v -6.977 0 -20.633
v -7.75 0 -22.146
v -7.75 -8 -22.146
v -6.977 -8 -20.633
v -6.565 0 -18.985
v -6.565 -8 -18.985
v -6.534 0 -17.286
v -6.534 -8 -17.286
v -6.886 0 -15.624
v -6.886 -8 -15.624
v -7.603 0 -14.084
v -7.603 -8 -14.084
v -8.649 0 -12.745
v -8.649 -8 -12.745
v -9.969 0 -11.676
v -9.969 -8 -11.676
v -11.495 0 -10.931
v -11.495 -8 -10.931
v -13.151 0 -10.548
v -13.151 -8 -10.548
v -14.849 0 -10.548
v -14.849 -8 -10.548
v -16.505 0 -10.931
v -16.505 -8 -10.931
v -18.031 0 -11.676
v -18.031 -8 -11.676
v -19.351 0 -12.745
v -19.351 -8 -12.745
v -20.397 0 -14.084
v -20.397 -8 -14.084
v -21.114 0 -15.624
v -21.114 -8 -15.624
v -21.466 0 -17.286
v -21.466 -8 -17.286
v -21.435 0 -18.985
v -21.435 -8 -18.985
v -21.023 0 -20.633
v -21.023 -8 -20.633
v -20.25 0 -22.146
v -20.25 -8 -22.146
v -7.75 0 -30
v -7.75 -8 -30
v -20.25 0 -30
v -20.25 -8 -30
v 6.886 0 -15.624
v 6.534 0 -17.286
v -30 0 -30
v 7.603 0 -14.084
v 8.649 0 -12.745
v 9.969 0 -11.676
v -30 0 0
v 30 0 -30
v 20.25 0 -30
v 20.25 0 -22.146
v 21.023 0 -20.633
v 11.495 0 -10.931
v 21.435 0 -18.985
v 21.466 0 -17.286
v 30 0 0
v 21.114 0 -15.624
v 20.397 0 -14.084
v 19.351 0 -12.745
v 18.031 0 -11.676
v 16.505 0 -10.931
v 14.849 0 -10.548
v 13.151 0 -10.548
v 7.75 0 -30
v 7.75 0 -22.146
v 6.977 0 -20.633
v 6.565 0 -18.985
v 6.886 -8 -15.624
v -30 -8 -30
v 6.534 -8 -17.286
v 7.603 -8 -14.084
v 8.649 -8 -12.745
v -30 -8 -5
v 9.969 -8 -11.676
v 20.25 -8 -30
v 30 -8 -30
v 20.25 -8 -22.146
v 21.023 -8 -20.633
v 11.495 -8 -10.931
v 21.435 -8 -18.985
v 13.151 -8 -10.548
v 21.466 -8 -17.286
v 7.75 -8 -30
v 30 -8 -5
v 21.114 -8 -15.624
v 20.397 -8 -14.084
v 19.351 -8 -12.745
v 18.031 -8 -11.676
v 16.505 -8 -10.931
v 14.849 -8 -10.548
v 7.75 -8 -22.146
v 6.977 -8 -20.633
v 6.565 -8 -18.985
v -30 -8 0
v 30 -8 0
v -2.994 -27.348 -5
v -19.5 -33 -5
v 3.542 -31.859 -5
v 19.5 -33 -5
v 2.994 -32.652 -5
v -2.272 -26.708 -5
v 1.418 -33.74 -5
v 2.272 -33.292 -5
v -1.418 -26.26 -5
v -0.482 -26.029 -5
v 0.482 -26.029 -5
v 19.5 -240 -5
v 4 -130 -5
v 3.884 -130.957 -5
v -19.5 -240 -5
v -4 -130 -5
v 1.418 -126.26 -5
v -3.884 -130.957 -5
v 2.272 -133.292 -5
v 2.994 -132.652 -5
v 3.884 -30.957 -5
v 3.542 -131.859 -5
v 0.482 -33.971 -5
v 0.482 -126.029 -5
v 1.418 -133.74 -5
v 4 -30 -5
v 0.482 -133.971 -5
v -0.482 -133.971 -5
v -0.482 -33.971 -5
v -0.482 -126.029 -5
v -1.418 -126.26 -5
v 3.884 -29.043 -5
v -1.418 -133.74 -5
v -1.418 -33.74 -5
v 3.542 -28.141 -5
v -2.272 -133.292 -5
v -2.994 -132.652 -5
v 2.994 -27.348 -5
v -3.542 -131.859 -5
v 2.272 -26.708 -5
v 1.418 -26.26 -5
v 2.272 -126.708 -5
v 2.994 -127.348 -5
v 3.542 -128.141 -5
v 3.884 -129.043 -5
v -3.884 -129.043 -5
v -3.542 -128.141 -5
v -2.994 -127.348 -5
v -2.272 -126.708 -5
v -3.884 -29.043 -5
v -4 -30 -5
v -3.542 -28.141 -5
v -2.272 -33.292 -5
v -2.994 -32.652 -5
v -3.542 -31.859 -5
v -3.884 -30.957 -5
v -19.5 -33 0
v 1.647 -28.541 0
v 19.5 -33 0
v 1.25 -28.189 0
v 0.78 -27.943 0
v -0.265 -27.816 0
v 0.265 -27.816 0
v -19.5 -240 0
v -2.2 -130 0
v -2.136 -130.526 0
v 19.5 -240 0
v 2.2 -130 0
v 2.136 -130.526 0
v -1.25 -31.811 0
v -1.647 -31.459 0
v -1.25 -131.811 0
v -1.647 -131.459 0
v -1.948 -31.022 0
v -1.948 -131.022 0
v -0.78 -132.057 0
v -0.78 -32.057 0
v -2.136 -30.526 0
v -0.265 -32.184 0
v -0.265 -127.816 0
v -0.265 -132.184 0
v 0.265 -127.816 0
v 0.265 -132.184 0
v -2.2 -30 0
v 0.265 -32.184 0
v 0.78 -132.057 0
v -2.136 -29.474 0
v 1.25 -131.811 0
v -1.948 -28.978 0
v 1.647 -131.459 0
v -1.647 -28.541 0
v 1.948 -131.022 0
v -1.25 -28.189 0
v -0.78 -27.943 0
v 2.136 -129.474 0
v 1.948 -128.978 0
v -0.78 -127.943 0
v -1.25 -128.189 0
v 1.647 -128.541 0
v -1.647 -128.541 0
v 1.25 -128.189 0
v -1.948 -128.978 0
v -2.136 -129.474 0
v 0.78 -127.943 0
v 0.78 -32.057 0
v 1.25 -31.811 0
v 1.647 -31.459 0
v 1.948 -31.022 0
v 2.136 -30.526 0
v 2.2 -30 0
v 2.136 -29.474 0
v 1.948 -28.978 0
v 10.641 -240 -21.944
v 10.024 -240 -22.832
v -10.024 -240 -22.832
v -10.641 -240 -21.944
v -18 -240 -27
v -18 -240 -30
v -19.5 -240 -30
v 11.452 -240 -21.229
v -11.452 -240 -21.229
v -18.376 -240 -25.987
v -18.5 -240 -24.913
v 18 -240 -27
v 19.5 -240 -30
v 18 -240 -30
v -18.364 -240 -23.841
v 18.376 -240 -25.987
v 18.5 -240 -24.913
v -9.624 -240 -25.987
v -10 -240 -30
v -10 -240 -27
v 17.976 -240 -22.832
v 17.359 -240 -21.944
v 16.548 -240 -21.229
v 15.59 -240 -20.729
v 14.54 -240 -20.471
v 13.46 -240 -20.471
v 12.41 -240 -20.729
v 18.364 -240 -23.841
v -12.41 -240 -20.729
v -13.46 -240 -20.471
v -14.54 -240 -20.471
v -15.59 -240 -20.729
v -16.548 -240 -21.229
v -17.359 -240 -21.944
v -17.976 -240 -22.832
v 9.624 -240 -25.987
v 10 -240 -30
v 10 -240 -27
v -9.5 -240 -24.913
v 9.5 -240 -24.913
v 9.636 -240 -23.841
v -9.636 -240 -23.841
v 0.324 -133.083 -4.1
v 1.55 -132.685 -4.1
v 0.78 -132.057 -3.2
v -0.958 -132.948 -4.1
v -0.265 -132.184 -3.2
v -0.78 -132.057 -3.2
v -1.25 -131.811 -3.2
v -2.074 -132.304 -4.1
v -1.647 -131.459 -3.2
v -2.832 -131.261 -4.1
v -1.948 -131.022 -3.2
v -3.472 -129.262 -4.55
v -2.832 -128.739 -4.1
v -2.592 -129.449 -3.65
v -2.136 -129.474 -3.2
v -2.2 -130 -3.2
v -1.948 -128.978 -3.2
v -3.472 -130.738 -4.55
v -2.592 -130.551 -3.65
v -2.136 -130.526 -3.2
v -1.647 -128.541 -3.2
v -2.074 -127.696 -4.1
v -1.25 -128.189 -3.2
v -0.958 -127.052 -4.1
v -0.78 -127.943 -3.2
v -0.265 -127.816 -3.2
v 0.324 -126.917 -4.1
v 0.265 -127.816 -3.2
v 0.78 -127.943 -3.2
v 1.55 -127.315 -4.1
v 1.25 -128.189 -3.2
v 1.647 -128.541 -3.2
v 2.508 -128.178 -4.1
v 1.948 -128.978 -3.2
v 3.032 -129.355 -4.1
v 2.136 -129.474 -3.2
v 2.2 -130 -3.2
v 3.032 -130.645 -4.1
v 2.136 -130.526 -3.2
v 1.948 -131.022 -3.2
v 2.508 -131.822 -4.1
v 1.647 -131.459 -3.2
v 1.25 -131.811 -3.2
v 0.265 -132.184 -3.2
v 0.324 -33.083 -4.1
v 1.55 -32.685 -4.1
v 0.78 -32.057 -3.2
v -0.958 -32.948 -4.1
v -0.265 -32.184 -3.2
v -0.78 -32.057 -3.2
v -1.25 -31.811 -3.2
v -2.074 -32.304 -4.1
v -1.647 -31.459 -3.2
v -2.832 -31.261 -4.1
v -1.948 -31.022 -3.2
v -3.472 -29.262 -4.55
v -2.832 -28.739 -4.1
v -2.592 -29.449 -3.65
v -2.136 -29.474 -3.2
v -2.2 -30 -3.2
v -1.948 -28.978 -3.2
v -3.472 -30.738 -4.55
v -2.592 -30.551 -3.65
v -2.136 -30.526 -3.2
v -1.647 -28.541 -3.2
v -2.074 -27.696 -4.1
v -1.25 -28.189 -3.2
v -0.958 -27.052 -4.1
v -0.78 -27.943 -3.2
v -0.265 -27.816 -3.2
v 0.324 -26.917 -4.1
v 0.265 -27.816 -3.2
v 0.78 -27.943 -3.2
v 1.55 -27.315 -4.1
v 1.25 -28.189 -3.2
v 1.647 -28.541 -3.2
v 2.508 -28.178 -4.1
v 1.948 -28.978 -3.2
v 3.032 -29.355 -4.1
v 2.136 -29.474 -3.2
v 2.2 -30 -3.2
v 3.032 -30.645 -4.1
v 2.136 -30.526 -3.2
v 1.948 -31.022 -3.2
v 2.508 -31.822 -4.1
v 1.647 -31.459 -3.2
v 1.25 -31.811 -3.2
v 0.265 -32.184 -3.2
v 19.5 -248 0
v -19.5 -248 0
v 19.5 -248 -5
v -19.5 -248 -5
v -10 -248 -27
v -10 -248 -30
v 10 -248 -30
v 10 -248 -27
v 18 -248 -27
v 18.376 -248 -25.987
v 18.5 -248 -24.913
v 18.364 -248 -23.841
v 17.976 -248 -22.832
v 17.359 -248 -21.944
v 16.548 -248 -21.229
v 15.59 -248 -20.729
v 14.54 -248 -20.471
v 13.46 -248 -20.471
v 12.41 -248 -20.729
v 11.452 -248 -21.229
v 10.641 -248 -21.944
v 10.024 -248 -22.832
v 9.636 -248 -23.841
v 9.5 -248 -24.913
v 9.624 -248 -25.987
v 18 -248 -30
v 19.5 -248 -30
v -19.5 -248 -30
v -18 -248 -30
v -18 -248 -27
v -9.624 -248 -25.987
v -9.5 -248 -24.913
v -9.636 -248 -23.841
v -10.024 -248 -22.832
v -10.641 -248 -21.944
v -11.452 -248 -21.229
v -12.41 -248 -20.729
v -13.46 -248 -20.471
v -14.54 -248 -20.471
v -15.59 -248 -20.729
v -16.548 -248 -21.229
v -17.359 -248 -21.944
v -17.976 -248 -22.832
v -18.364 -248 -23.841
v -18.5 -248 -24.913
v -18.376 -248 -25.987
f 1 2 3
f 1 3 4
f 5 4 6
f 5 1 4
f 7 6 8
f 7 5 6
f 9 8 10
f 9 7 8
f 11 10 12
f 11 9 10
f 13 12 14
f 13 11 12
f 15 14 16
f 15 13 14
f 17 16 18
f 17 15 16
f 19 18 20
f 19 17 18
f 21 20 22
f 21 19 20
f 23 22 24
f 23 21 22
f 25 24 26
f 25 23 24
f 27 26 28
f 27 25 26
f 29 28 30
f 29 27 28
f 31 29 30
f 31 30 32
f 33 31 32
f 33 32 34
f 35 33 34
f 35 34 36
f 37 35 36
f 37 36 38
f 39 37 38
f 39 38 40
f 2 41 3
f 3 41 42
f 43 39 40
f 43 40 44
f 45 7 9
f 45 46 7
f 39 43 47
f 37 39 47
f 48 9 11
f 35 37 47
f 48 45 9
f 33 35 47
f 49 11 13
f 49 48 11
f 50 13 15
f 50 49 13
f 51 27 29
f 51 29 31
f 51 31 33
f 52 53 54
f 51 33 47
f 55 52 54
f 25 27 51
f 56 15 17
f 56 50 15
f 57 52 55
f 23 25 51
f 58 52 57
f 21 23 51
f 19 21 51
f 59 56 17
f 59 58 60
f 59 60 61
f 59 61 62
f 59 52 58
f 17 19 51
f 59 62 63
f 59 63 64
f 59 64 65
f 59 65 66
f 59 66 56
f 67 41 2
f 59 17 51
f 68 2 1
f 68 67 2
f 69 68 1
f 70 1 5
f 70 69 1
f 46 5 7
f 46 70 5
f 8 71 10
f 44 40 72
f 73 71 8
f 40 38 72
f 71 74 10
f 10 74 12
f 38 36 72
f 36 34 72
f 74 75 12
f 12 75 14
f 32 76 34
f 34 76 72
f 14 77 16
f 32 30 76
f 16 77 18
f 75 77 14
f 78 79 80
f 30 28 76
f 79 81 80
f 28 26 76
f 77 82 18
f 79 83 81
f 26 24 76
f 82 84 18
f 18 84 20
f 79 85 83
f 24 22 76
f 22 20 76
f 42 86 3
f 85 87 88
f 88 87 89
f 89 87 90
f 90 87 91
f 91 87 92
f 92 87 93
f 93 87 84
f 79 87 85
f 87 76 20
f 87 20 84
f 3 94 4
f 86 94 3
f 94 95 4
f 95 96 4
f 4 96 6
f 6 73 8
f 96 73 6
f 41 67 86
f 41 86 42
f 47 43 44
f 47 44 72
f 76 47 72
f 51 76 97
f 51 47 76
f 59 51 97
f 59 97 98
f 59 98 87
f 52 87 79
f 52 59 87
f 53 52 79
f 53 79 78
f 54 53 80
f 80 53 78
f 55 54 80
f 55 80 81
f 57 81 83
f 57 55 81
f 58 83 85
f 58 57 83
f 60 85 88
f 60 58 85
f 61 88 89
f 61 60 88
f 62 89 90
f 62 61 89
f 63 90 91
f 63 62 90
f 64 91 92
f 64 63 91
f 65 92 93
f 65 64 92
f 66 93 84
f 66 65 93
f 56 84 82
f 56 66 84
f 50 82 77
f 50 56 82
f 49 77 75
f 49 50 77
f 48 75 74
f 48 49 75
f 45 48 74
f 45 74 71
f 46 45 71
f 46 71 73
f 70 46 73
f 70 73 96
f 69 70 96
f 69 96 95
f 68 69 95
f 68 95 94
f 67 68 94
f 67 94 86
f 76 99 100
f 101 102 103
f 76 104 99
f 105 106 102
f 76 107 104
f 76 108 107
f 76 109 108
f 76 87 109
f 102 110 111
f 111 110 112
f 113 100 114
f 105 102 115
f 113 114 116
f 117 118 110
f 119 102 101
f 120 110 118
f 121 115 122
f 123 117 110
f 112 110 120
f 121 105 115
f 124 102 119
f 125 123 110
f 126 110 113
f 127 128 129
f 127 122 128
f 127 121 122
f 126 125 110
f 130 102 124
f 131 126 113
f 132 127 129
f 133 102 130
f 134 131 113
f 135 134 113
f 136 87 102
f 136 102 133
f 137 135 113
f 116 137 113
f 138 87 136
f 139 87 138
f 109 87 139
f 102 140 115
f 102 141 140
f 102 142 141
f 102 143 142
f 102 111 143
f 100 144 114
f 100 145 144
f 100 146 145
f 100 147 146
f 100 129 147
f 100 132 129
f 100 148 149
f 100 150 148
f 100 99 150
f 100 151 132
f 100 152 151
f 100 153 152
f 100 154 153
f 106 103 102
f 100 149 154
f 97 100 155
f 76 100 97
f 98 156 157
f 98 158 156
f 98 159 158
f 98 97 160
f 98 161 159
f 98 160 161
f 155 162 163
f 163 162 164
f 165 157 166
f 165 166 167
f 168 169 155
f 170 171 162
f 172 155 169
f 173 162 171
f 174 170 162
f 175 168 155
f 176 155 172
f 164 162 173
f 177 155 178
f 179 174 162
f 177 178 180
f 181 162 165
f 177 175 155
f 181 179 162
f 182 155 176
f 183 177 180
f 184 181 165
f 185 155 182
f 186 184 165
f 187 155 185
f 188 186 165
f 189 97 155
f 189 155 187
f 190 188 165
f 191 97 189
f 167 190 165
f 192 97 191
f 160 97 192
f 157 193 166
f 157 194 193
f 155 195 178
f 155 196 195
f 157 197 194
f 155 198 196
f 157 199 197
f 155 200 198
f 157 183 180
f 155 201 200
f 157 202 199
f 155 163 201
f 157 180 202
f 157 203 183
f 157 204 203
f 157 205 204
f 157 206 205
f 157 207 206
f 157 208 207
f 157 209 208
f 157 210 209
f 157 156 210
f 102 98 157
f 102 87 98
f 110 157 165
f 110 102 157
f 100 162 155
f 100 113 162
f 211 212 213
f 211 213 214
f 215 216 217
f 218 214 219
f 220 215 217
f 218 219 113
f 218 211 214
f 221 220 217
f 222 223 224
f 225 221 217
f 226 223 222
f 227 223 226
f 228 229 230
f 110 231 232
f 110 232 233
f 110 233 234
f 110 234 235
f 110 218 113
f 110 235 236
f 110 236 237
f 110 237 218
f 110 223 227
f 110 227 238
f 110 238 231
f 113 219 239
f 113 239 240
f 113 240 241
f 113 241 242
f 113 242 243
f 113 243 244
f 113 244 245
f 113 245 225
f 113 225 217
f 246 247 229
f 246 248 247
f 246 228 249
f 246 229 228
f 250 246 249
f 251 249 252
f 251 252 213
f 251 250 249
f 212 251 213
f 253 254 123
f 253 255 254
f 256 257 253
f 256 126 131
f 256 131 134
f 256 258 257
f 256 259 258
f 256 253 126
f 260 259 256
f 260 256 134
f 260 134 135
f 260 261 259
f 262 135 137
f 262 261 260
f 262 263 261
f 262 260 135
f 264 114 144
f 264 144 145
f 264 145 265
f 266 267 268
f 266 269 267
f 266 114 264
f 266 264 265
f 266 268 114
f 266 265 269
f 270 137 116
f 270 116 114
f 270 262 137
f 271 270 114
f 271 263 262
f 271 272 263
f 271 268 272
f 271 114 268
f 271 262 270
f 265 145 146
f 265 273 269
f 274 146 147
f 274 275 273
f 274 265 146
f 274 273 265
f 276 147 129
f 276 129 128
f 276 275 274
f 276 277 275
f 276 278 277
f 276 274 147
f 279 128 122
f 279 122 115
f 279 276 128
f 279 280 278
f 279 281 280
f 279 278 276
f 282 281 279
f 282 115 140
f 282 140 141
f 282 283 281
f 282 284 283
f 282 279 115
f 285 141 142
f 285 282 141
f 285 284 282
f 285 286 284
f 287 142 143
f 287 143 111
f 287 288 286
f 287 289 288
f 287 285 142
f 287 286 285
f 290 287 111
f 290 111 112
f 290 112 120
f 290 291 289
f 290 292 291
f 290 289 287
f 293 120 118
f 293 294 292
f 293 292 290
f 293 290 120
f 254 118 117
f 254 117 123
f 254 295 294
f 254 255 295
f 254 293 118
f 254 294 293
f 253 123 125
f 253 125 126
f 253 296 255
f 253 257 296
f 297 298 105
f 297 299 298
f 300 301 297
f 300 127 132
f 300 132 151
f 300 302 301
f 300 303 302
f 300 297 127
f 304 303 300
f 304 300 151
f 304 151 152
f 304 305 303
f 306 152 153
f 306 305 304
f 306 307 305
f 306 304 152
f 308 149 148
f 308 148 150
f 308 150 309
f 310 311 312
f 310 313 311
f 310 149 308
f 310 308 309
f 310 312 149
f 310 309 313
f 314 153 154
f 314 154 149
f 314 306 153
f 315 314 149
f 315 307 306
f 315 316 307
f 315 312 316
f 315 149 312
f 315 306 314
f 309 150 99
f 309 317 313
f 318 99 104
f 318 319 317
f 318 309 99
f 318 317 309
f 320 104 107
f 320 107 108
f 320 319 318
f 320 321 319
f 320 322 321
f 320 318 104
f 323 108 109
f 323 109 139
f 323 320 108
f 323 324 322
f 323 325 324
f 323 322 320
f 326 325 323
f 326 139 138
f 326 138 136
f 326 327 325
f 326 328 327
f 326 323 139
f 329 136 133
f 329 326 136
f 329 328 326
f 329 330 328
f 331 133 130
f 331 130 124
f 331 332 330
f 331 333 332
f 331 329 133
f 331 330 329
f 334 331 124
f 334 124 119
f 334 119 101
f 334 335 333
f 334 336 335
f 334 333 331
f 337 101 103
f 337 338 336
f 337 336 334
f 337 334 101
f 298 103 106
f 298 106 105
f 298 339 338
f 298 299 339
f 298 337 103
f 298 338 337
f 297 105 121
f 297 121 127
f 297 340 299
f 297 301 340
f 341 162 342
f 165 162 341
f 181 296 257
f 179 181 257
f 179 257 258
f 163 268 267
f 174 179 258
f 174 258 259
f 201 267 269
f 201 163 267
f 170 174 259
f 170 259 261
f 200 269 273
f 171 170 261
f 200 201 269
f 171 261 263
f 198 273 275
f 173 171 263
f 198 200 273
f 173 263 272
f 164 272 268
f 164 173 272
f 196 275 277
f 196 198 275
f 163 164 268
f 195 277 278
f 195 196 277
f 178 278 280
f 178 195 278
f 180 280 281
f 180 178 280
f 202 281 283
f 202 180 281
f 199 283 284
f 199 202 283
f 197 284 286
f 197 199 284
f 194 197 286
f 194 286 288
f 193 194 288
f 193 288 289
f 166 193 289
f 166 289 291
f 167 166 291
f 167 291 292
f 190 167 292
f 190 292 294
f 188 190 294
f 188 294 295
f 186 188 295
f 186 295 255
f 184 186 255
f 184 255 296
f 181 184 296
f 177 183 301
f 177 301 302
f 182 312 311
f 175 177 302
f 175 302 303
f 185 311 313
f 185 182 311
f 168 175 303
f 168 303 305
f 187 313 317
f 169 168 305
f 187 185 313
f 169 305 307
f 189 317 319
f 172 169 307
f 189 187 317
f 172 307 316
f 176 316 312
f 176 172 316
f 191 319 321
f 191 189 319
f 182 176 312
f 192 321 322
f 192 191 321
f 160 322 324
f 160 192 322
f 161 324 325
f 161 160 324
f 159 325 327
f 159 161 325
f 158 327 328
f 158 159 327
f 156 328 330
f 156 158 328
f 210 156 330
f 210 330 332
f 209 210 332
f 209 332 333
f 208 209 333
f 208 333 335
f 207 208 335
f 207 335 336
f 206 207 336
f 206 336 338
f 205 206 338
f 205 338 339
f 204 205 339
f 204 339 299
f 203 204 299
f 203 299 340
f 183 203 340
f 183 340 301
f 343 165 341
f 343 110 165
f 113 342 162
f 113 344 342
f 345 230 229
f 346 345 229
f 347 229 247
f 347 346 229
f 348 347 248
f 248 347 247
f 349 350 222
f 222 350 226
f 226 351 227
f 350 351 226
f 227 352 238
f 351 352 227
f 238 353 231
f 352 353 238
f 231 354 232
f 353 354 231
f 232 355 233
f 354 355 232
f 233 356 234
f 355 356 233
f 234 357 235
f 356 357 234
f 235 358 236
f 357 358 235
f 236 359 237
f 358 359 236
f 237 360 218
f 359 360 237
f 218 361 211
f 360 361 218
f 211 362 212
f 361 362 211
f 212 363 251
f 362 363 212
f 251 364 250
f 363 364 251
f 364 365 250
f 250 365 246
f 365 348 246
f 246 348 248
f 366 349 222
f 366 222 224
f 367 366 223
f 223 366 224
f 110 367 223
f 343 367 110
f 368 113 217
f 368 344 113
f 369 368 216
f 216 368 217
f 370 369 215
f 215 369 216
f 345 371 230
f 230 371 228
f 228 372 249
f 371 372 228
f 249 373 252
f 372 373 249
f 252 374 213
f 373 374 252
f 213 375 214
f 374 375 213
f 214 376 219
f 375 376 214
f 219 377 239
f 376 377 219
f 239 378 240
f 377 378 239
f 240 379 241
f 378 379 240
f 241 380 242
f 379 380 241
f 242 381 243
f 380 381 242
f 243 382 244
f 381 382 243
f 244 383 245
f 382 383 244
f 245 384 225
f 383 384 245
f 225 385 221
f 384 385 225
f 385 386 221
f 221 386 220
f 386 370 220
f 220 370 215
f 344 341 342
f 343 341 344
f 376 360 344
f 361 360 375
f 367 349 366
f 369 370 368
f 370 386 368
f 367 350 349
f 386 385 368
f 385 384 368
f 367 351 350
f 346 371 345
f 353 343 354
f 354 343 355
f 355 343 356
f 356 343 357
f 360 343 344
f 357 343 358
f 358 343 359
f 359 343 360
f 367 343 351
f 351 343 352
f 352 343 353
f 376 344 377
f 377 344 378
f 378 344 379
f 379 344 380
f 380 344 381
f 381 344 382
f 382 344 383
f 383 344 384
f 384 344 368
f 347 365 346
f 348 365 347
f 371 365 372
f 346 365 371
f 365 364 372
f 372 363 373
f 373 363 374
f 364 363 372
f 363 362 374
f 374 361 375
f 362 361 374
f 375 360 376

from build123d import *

# Parameters (mm, degrees)
PAD_DEPTH        = 8
SKETCH001_W      = 60
SKETCH001_H      = 5
PAD001_DEPTH     = 240
POCKET_DEPTH     = 5.001
POCKET001_DEPTH  = 5.001
PAD002_DEPTH     = 8
HOLE_D           = 4.4
HOLE_CSINK_D     = 8
HOLE_CSINK_ANGLE = 90


with BuildPart() as part:
    # Sketch → Pad (new body)
    with BuildSketch(Plane.XZ):
        with BuildLine():
            Line((-30, 0), (30, 0))
            Line((30, 0), (30, -30))
            Line((30, -30), (20.25, -30))
            Line((20.25, -22.145781), (20.25, -30))
            ThreePointArc((20.25, -22.145781), (14, -10.5), (7.75, -22.145781))
            Line((7.75, -22.145781), (7.75, -30))
            Line((7.75, -30), (-7.75, -30))
            Line((-7.75, -22.145781), (-7.75, -30))
            ThreePointArc((-7.75, -22.145781), (-14, -10.5), (-20.25, -22.145781))
            Line((-20.25, -22.145781), (-20.25, -30))
            Line((-20.25, -30), (-30, -30))
            Line((-30, -30), (-30, 0))
        make_face()
    extrude(amount=PAD_DEPTH)

    # Sketch001 (on Face14 of Pad) → Pad001 (join)
    with BuildSketch(Plane.XZ.offset(8)):
        with Locations((0, -2.5)):
            Rectangle(SKETCH001_W, SKETCH001_H)
    extrude(amount=PAD001_DEPTH)

    # Sketch002 (on Face15 of Pad001) → Pocket (cut, through all)
    with BuildSketch(Plane(origin=(0, 0, -5), x_dir=(1, 0, 0), z_dir=(0, 0, -1))):
        Polygon((-19.5, 251), (-33, 251), (-33, 0.857143), (-19.5, 33), align=None)
    extrude(amount=-POCKET_DEPTH, mode=Mode.SUBTRACT)

    # Sketch003 (on Face15 of Pocket) → Pocket001 (cut, through all)
    with BuildSketch(Plane(origin=(0, 0, -5), x_dir=(1, 0, 0), z_dir=(0, 0, -1))):
        Polygon((19.5, 251), (33, 251), (33, 0.857143), (19.5, 33), align=None)
    extrude(amount=-POCKET001_DEPTH, mode=Mode.SUBTRACT)

    # Sketch004 (on Face20 of Pocket001) → Pad002 (join)
    with BuildSketch(Plane.XZ.offset(248)):
        with BuildLine():
            Line((-19.5, 0), (19.5, 0))
            Line((19.5, 0), (19.5, -30))
            Line((19.5, -30), (18, -30))
            Line((18, -27), (18, -30))
            ThreePointArc((18, -27), (14, -20.438447), (10, -27))
            Line((10, -27), (10, -30))
            Line((10, -30), (-10, -30))
            Line((-10, -27), (-10, -30))
            ThreePointArc((-10, -27), (-14, -20.438447), (-18, -27))
            Line((-18, -27), (-18, -30))
            Line((-18, -30), (-19.5, -30))
            Line((-19.5, -30), (-19.5, 0))
        make_face()
    extrude(amount=-PAD002_DEPTH)

    # Hole (through all)
    with Locations(Plane(origin=(0, 0, -5), x_dir=(1, 0, 0), z_dir=(0, 0, -1))):
        with Locations((0, 30), (0, 130)):
            CounterSinkHole(HOLE_D / 2, HOLE_CSINK_D / 2, counter_sink_angle=HOLE_CSINK_ANGLE)


solid = part.part
